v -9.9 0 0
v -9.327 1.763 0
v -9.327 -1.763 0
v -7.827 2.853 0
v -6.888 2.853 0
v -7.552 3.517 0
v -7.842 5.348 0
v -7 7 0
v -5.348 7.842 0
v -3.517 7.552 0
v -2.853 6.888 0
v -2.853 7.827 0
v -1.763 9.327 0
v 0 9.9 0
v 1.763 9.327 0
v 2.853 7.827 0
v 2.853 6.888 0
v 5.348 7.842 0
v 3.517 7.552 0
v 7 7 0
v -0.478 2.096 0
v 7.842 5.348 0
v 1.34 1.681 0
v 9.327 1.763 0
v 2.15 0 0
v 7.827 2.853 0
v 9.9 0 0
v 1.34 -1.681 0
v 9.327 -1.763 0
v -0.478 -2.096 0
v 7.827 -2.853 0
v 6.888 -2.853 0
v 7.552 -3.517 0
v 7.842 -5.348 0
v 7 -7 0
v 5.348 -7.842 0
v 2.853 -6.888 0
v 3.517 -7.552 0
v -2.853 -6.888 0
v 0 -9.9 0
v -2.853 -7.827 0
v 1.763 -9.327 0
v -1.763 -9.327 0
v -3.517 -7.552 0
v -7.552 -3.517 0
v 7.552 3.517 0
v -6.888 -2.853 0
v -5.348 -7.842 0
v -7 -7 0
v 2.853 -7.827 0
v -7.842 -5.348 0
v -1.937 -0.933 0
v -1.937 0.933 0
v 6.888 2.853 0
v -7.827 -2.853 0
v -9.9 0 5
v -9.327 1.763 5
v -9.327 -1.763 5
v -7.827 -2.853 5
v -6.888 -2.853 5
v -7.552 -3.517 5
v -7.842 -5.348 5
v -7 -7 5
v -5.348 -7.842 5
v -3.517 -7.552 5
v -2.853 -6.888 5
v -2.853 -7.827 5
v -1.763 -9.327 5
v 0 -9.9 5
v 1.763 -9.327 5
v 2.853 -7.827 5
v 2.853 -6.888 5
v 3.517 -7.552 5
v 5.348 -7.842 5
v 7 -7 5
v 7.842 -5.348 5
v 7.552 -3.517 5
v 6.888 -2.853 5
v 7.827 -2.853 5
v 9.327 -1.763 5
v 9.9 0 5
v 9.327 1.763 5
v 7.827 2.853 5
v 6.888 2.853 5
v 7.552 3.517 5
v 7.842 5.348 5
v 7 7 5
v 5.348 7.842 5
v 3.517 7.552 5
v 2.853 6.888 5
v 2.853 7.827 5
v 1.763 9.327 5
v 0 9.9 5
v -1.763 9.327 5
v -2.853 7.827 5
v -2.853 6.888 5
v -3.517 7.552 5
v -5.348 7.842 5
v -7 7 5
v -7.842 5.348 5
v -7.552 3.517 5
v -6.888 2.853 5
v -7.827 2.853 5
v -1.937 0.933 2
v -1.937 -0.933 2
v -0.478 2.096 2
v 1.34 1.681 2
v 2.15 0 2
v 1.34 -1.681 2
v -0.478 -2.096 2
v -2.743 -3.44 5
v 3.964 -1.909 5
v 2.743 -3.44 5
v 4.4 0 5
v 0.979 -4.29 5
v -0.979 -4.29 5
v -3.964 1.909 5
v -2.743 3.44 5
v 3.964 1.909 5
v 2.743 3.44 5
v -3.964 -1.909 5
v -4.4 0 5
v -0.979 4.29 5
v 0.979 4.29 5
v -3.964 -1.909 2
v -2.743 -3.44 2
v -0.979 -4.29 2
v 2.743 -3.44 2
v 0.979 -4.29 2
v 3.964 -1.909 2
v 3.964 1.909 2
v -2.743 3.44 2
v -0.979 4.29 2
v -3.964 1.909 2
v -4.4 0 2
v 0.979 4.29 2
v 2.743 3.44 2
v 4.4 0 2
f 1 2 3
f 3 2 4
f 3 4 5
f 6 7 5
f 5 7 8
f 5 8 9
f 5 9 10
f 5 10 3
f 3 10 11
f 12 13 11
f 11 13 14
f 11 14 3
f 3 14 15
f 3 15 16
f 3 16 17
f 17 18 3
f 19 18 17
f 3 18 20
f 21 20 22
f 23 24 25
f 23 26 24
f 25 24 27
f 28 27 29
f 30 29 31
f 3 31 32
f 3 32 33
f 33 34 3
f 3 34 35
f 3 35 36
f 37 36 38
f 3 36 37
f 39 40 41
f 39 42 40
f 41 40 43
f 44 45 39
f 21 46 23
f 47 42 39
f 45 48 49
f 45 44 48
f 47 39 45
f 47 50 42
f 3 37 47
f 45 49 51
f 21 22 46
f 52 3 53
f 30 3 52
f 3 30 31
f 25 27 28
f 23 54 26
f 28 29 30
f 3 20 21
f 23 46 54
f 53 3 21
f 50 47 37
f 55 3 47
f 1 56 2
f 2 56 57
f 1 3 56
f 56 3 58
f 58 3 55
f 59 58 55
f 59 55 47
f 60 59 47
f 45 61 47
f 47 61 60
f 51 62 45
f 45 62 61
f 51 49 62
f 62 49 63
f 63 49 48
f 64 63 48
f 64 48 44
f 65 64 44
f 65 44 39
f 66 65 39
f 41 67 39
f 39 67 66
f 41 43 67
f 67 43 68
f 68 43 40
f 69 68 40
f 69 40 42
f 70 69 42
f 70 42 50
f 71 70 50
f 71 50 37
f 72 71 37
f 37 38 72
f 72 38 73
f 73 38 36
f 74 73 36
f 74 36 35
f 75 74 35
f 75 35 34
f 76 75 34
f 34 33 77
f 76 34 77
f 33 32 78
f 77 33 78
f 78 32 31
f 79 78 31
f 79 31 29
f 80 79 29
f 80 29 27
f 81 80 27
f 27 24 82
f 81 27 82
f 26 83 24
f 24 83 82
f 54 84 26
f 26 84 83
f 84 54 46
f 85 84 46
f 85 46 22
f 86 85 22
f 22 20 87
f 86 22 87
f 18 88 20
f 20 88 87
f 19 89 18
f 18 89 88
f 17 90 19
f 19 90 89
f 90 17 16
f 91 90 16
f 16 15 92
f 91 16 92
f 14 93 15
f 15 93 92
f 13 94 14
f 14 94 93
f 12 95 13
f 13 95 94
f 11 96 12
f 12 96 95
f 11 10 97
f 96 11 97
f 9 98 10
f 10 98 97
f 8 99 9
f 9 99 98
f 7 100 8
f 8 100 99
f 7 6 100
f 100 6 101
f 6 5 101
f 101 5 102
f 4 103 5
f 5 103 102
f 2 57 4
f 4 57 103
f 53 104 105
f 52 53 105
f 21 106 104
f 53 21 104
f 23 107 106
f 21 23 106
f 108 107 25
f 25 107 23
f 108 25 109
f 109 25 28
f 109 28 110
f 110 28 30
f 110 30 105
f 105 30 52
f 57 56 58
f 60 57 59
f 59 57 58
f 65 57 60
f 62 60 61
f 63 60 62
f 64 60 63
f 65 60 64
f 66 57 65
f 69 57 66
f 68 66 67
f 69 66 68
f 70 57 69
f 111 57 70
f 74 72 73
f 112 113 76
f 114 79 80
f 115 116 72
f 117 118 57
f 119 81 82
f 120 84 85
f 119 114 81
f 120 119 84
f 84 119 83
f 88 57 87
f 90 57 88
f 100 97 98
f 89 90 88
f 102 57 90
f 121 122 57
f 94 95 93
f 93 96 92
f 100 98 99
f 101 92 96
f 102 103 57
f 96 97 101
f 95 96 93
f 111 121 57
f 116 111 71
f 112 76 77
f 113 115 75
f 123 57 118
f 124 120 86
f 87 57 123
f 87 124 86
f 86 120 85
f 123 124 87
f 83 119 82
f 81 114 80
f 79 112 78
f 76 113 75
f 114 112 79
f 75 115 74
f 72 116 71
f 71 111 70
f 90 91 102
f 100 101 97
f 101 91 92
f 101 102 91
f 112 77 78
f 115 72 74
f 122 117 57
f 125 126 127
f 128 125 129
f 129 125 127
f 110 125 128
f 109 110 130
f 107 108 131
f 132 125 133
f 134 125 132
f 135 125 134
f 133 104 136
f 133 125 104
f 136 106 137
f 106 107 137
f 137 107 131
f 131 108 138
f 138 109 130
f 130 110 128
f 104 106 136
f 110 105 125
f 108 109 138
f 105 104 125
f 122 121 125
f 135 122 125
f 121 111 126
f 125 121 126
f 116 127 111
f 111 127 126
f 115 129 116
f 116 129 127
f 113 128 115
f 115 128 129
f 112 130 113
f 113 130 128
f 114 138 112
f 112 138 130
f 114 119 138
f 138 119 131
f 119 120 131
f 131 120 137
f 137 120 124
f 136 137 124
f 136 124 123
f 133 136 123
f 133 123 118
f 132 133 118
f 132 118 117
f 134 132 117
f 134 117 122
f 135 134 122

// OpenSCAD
x=25.4; //Diameter of the Lens
y=10;   //Lens holder Thickness
z=3;     //Lens Holder Lip Size
X=25; //Base Diameter
Y=25;  //Base Height
a=3.35; //Set Screw Diameter
b=7.88; //Set Screw Nut Daimeter
c=2.82; //Set Screw Nut Thickness
d=8; //Guide Rod Diameter
e=20; //Guide Rod Length
f=3;    // Thumb Screw Head Height
g=7.8;   //Thumb Screw Head Diameter
i=3.3;    //Thumb Screw Diameter
j=3;    //PL Board Hole Diameter
thumbscrew();

module thumbscrew(){
difference(){
cylinder(f+2,(g+6)/2, (g+6)/2);
translate([0,0,2])cylinder(5,(g+1)/2, (g+1)/2);
cylinder(5,(i+1)/2, (i+1)/2);
}
difference(){
	for ( i = [0 :8] ){
					rotate( i * 360 / 8, [0, 0, 1])
					translate([(g+6)/2,0,0])
					cylinder(5,3,3);
		}	
translate([0,0,2])cylinder(5,(g+1)/2, (g+1)/2);
}
}

module mount(){
difference(){
cylinder((2/5)*Y,X/2,X/2);
translate([0,0,(1/5)*Y])cylinder(Y,(d+1)/2,(d+1)/2);
}
difference(){
translate([0,0,(2/5)*Y])cylinder((2/5)*Y,X/2,(d+6)/2);
cylinder(Y,(d+1)/2,(d+1)/2);

}
difference(){
translate([0,0,(4/5)*Y])cylinder((1/5)*Y,(d+6)/2,(d+6)/2);
cylinder(Y,(d+1)/2,(d+1)/2);

}
difference(){
translate([0,(X/2)+3,0])cylinder(5,(j+6)/2, (j+6)/2);
translate([0,(X/2)+3,0])cylinder(5,(j+1)/2, (j+1)/2);
}
difference(){
translate([0,(X/2)-2,5/2])cube([j+6,j+6,5],center = true);
translate([0,(X/2)+3,0])cylinder(5,(j+1)/2, (j+1)/2);
}
}

module lens_holder(){
difference(){
cylinder(y/2,(x+10)/2,(x+10)/2);
cylinder((y+2)/2,(x-3)/2,(x-3)/2);
translate([0,0,1.5])cylinder((y+2)/2,(x+1)/2,(x+1)/2);
translate([0,(x+10)/2+5,(b+3)/2])rotate([90,0,0])cylinder(10,(a+1)/2,(a+1)/2);
translate([0,(x+8)/2,(b+3)/2])nuttrap();
translate([(x+15)/2,e/2,(d+6)/2])rotate([90,0,0])cylinder(e,(d+6)/2, (d+6)/2);
}
difference(){
translate([0,0,y/2])cylinder((y)/2,(x+5)/2,(x+5)/2);
cylinder((y)*2,(x+1)/2,(x+1)/2);
translate([0,(x+10)/2+5,(b+3)/2])rotate([90,0,0])cylinder(25,(b+3)/2,(b+3)/2);
translate([0,(x+8)/2,(b+3)/2])nuttrap();
}
difference(){
translate([0,(x+8)/2,0])set_screw((b+3)/2);
cylinder((y+2),(x+1)/2,(x+1)/2);
}
difference(){
translate([(x+15)/2,0,0])guide_rod();
rotate([0,0,90]){
#translate([0,((x+7)/-2)-((d)),(d+6)/2])rotate([90,0,0])cylinder(50,(a+1)/2,(a+1)/2);
translate([((x+7.5)/2)+((d+6)),0,0])rotate([0,0,90])set_screw1((d+6)/2);
}
}
translate([((x+7.5)/2)+((d+6)),0,0])rotate([0,0,90])set_screw((d+6)/2);
}

module guide_rod(){
difference(){
translate([0,e/2,(d+6)/2])rotate([90,0,0])cylinder(e,(d+6)/2, (d+6)/2);
translate([0,(e/2)+1,(d+6)/2])rotate([90,0,0])cylinder(e+2,(d+1)/2, (d+1)/2);
}
difference(){
translate([0,0,(d+6)/4])cube([(d+6),e,(d+6)/2], center = true);
translate([0,(e/2)+1,(d+6)/2])rotate([90,0,0])cylinder(e+2,(d+1)/2, (d+1)/2);
}
}

module set_screw(h){
difference(){
translate([0,5,h])rotate([90,0,0])cylinder(10,(b+3)/2, (b+3)/2);
#translate([0,10,h])rotate([90,0,0])cylinder(200,(a+1)/2, (a+1)/2);
translate([0,0,h])nuttrap();
}
difference(){
translate([0,0,h/2])cube([(b+3),10,h], center = true);
translate([0,6,h])rotate([90,0,0])cylinder(12,(a+1)/2, (a+1)/2);
translate([0,0,h])nuttrap();
}
}
module set_screw1(h){
translate([0,5,h])rotate([90,0,0])cylinder(10,(b+3)/2, (b+3)/2);
translate([0,0,h/2])cube([(b+3),10,h], center = true);

}



module nuttrap(){
translate([0,(c+1)/2,0])rotate([90,0,0])hexagon(c+1,(b+1)/2);
translate([0,0,(b*3)/2])cube([b+1,c+1,b*3],center = true);
}

module reg_polygon(sides,radius)
{
  function dia(r) = sqrt(pow(r*2,2)/2);  //sqrt((r*2^2)/2) if only we had an exponention op
  if(sides<2) square([radius,0]);
  if(sides==3) triangle(radius);
  if(sides==4) square([dia(radius),dia(radius)],center=true);
  if(sides>4) circle(r=radius,$fn=sides);
}

module hexagonf(radius)
{
  reg_polygon(6,radius);
}

module hexagon(height,radius) 
{
  linear_extrude(height=height) hexagonf(radius);
}
